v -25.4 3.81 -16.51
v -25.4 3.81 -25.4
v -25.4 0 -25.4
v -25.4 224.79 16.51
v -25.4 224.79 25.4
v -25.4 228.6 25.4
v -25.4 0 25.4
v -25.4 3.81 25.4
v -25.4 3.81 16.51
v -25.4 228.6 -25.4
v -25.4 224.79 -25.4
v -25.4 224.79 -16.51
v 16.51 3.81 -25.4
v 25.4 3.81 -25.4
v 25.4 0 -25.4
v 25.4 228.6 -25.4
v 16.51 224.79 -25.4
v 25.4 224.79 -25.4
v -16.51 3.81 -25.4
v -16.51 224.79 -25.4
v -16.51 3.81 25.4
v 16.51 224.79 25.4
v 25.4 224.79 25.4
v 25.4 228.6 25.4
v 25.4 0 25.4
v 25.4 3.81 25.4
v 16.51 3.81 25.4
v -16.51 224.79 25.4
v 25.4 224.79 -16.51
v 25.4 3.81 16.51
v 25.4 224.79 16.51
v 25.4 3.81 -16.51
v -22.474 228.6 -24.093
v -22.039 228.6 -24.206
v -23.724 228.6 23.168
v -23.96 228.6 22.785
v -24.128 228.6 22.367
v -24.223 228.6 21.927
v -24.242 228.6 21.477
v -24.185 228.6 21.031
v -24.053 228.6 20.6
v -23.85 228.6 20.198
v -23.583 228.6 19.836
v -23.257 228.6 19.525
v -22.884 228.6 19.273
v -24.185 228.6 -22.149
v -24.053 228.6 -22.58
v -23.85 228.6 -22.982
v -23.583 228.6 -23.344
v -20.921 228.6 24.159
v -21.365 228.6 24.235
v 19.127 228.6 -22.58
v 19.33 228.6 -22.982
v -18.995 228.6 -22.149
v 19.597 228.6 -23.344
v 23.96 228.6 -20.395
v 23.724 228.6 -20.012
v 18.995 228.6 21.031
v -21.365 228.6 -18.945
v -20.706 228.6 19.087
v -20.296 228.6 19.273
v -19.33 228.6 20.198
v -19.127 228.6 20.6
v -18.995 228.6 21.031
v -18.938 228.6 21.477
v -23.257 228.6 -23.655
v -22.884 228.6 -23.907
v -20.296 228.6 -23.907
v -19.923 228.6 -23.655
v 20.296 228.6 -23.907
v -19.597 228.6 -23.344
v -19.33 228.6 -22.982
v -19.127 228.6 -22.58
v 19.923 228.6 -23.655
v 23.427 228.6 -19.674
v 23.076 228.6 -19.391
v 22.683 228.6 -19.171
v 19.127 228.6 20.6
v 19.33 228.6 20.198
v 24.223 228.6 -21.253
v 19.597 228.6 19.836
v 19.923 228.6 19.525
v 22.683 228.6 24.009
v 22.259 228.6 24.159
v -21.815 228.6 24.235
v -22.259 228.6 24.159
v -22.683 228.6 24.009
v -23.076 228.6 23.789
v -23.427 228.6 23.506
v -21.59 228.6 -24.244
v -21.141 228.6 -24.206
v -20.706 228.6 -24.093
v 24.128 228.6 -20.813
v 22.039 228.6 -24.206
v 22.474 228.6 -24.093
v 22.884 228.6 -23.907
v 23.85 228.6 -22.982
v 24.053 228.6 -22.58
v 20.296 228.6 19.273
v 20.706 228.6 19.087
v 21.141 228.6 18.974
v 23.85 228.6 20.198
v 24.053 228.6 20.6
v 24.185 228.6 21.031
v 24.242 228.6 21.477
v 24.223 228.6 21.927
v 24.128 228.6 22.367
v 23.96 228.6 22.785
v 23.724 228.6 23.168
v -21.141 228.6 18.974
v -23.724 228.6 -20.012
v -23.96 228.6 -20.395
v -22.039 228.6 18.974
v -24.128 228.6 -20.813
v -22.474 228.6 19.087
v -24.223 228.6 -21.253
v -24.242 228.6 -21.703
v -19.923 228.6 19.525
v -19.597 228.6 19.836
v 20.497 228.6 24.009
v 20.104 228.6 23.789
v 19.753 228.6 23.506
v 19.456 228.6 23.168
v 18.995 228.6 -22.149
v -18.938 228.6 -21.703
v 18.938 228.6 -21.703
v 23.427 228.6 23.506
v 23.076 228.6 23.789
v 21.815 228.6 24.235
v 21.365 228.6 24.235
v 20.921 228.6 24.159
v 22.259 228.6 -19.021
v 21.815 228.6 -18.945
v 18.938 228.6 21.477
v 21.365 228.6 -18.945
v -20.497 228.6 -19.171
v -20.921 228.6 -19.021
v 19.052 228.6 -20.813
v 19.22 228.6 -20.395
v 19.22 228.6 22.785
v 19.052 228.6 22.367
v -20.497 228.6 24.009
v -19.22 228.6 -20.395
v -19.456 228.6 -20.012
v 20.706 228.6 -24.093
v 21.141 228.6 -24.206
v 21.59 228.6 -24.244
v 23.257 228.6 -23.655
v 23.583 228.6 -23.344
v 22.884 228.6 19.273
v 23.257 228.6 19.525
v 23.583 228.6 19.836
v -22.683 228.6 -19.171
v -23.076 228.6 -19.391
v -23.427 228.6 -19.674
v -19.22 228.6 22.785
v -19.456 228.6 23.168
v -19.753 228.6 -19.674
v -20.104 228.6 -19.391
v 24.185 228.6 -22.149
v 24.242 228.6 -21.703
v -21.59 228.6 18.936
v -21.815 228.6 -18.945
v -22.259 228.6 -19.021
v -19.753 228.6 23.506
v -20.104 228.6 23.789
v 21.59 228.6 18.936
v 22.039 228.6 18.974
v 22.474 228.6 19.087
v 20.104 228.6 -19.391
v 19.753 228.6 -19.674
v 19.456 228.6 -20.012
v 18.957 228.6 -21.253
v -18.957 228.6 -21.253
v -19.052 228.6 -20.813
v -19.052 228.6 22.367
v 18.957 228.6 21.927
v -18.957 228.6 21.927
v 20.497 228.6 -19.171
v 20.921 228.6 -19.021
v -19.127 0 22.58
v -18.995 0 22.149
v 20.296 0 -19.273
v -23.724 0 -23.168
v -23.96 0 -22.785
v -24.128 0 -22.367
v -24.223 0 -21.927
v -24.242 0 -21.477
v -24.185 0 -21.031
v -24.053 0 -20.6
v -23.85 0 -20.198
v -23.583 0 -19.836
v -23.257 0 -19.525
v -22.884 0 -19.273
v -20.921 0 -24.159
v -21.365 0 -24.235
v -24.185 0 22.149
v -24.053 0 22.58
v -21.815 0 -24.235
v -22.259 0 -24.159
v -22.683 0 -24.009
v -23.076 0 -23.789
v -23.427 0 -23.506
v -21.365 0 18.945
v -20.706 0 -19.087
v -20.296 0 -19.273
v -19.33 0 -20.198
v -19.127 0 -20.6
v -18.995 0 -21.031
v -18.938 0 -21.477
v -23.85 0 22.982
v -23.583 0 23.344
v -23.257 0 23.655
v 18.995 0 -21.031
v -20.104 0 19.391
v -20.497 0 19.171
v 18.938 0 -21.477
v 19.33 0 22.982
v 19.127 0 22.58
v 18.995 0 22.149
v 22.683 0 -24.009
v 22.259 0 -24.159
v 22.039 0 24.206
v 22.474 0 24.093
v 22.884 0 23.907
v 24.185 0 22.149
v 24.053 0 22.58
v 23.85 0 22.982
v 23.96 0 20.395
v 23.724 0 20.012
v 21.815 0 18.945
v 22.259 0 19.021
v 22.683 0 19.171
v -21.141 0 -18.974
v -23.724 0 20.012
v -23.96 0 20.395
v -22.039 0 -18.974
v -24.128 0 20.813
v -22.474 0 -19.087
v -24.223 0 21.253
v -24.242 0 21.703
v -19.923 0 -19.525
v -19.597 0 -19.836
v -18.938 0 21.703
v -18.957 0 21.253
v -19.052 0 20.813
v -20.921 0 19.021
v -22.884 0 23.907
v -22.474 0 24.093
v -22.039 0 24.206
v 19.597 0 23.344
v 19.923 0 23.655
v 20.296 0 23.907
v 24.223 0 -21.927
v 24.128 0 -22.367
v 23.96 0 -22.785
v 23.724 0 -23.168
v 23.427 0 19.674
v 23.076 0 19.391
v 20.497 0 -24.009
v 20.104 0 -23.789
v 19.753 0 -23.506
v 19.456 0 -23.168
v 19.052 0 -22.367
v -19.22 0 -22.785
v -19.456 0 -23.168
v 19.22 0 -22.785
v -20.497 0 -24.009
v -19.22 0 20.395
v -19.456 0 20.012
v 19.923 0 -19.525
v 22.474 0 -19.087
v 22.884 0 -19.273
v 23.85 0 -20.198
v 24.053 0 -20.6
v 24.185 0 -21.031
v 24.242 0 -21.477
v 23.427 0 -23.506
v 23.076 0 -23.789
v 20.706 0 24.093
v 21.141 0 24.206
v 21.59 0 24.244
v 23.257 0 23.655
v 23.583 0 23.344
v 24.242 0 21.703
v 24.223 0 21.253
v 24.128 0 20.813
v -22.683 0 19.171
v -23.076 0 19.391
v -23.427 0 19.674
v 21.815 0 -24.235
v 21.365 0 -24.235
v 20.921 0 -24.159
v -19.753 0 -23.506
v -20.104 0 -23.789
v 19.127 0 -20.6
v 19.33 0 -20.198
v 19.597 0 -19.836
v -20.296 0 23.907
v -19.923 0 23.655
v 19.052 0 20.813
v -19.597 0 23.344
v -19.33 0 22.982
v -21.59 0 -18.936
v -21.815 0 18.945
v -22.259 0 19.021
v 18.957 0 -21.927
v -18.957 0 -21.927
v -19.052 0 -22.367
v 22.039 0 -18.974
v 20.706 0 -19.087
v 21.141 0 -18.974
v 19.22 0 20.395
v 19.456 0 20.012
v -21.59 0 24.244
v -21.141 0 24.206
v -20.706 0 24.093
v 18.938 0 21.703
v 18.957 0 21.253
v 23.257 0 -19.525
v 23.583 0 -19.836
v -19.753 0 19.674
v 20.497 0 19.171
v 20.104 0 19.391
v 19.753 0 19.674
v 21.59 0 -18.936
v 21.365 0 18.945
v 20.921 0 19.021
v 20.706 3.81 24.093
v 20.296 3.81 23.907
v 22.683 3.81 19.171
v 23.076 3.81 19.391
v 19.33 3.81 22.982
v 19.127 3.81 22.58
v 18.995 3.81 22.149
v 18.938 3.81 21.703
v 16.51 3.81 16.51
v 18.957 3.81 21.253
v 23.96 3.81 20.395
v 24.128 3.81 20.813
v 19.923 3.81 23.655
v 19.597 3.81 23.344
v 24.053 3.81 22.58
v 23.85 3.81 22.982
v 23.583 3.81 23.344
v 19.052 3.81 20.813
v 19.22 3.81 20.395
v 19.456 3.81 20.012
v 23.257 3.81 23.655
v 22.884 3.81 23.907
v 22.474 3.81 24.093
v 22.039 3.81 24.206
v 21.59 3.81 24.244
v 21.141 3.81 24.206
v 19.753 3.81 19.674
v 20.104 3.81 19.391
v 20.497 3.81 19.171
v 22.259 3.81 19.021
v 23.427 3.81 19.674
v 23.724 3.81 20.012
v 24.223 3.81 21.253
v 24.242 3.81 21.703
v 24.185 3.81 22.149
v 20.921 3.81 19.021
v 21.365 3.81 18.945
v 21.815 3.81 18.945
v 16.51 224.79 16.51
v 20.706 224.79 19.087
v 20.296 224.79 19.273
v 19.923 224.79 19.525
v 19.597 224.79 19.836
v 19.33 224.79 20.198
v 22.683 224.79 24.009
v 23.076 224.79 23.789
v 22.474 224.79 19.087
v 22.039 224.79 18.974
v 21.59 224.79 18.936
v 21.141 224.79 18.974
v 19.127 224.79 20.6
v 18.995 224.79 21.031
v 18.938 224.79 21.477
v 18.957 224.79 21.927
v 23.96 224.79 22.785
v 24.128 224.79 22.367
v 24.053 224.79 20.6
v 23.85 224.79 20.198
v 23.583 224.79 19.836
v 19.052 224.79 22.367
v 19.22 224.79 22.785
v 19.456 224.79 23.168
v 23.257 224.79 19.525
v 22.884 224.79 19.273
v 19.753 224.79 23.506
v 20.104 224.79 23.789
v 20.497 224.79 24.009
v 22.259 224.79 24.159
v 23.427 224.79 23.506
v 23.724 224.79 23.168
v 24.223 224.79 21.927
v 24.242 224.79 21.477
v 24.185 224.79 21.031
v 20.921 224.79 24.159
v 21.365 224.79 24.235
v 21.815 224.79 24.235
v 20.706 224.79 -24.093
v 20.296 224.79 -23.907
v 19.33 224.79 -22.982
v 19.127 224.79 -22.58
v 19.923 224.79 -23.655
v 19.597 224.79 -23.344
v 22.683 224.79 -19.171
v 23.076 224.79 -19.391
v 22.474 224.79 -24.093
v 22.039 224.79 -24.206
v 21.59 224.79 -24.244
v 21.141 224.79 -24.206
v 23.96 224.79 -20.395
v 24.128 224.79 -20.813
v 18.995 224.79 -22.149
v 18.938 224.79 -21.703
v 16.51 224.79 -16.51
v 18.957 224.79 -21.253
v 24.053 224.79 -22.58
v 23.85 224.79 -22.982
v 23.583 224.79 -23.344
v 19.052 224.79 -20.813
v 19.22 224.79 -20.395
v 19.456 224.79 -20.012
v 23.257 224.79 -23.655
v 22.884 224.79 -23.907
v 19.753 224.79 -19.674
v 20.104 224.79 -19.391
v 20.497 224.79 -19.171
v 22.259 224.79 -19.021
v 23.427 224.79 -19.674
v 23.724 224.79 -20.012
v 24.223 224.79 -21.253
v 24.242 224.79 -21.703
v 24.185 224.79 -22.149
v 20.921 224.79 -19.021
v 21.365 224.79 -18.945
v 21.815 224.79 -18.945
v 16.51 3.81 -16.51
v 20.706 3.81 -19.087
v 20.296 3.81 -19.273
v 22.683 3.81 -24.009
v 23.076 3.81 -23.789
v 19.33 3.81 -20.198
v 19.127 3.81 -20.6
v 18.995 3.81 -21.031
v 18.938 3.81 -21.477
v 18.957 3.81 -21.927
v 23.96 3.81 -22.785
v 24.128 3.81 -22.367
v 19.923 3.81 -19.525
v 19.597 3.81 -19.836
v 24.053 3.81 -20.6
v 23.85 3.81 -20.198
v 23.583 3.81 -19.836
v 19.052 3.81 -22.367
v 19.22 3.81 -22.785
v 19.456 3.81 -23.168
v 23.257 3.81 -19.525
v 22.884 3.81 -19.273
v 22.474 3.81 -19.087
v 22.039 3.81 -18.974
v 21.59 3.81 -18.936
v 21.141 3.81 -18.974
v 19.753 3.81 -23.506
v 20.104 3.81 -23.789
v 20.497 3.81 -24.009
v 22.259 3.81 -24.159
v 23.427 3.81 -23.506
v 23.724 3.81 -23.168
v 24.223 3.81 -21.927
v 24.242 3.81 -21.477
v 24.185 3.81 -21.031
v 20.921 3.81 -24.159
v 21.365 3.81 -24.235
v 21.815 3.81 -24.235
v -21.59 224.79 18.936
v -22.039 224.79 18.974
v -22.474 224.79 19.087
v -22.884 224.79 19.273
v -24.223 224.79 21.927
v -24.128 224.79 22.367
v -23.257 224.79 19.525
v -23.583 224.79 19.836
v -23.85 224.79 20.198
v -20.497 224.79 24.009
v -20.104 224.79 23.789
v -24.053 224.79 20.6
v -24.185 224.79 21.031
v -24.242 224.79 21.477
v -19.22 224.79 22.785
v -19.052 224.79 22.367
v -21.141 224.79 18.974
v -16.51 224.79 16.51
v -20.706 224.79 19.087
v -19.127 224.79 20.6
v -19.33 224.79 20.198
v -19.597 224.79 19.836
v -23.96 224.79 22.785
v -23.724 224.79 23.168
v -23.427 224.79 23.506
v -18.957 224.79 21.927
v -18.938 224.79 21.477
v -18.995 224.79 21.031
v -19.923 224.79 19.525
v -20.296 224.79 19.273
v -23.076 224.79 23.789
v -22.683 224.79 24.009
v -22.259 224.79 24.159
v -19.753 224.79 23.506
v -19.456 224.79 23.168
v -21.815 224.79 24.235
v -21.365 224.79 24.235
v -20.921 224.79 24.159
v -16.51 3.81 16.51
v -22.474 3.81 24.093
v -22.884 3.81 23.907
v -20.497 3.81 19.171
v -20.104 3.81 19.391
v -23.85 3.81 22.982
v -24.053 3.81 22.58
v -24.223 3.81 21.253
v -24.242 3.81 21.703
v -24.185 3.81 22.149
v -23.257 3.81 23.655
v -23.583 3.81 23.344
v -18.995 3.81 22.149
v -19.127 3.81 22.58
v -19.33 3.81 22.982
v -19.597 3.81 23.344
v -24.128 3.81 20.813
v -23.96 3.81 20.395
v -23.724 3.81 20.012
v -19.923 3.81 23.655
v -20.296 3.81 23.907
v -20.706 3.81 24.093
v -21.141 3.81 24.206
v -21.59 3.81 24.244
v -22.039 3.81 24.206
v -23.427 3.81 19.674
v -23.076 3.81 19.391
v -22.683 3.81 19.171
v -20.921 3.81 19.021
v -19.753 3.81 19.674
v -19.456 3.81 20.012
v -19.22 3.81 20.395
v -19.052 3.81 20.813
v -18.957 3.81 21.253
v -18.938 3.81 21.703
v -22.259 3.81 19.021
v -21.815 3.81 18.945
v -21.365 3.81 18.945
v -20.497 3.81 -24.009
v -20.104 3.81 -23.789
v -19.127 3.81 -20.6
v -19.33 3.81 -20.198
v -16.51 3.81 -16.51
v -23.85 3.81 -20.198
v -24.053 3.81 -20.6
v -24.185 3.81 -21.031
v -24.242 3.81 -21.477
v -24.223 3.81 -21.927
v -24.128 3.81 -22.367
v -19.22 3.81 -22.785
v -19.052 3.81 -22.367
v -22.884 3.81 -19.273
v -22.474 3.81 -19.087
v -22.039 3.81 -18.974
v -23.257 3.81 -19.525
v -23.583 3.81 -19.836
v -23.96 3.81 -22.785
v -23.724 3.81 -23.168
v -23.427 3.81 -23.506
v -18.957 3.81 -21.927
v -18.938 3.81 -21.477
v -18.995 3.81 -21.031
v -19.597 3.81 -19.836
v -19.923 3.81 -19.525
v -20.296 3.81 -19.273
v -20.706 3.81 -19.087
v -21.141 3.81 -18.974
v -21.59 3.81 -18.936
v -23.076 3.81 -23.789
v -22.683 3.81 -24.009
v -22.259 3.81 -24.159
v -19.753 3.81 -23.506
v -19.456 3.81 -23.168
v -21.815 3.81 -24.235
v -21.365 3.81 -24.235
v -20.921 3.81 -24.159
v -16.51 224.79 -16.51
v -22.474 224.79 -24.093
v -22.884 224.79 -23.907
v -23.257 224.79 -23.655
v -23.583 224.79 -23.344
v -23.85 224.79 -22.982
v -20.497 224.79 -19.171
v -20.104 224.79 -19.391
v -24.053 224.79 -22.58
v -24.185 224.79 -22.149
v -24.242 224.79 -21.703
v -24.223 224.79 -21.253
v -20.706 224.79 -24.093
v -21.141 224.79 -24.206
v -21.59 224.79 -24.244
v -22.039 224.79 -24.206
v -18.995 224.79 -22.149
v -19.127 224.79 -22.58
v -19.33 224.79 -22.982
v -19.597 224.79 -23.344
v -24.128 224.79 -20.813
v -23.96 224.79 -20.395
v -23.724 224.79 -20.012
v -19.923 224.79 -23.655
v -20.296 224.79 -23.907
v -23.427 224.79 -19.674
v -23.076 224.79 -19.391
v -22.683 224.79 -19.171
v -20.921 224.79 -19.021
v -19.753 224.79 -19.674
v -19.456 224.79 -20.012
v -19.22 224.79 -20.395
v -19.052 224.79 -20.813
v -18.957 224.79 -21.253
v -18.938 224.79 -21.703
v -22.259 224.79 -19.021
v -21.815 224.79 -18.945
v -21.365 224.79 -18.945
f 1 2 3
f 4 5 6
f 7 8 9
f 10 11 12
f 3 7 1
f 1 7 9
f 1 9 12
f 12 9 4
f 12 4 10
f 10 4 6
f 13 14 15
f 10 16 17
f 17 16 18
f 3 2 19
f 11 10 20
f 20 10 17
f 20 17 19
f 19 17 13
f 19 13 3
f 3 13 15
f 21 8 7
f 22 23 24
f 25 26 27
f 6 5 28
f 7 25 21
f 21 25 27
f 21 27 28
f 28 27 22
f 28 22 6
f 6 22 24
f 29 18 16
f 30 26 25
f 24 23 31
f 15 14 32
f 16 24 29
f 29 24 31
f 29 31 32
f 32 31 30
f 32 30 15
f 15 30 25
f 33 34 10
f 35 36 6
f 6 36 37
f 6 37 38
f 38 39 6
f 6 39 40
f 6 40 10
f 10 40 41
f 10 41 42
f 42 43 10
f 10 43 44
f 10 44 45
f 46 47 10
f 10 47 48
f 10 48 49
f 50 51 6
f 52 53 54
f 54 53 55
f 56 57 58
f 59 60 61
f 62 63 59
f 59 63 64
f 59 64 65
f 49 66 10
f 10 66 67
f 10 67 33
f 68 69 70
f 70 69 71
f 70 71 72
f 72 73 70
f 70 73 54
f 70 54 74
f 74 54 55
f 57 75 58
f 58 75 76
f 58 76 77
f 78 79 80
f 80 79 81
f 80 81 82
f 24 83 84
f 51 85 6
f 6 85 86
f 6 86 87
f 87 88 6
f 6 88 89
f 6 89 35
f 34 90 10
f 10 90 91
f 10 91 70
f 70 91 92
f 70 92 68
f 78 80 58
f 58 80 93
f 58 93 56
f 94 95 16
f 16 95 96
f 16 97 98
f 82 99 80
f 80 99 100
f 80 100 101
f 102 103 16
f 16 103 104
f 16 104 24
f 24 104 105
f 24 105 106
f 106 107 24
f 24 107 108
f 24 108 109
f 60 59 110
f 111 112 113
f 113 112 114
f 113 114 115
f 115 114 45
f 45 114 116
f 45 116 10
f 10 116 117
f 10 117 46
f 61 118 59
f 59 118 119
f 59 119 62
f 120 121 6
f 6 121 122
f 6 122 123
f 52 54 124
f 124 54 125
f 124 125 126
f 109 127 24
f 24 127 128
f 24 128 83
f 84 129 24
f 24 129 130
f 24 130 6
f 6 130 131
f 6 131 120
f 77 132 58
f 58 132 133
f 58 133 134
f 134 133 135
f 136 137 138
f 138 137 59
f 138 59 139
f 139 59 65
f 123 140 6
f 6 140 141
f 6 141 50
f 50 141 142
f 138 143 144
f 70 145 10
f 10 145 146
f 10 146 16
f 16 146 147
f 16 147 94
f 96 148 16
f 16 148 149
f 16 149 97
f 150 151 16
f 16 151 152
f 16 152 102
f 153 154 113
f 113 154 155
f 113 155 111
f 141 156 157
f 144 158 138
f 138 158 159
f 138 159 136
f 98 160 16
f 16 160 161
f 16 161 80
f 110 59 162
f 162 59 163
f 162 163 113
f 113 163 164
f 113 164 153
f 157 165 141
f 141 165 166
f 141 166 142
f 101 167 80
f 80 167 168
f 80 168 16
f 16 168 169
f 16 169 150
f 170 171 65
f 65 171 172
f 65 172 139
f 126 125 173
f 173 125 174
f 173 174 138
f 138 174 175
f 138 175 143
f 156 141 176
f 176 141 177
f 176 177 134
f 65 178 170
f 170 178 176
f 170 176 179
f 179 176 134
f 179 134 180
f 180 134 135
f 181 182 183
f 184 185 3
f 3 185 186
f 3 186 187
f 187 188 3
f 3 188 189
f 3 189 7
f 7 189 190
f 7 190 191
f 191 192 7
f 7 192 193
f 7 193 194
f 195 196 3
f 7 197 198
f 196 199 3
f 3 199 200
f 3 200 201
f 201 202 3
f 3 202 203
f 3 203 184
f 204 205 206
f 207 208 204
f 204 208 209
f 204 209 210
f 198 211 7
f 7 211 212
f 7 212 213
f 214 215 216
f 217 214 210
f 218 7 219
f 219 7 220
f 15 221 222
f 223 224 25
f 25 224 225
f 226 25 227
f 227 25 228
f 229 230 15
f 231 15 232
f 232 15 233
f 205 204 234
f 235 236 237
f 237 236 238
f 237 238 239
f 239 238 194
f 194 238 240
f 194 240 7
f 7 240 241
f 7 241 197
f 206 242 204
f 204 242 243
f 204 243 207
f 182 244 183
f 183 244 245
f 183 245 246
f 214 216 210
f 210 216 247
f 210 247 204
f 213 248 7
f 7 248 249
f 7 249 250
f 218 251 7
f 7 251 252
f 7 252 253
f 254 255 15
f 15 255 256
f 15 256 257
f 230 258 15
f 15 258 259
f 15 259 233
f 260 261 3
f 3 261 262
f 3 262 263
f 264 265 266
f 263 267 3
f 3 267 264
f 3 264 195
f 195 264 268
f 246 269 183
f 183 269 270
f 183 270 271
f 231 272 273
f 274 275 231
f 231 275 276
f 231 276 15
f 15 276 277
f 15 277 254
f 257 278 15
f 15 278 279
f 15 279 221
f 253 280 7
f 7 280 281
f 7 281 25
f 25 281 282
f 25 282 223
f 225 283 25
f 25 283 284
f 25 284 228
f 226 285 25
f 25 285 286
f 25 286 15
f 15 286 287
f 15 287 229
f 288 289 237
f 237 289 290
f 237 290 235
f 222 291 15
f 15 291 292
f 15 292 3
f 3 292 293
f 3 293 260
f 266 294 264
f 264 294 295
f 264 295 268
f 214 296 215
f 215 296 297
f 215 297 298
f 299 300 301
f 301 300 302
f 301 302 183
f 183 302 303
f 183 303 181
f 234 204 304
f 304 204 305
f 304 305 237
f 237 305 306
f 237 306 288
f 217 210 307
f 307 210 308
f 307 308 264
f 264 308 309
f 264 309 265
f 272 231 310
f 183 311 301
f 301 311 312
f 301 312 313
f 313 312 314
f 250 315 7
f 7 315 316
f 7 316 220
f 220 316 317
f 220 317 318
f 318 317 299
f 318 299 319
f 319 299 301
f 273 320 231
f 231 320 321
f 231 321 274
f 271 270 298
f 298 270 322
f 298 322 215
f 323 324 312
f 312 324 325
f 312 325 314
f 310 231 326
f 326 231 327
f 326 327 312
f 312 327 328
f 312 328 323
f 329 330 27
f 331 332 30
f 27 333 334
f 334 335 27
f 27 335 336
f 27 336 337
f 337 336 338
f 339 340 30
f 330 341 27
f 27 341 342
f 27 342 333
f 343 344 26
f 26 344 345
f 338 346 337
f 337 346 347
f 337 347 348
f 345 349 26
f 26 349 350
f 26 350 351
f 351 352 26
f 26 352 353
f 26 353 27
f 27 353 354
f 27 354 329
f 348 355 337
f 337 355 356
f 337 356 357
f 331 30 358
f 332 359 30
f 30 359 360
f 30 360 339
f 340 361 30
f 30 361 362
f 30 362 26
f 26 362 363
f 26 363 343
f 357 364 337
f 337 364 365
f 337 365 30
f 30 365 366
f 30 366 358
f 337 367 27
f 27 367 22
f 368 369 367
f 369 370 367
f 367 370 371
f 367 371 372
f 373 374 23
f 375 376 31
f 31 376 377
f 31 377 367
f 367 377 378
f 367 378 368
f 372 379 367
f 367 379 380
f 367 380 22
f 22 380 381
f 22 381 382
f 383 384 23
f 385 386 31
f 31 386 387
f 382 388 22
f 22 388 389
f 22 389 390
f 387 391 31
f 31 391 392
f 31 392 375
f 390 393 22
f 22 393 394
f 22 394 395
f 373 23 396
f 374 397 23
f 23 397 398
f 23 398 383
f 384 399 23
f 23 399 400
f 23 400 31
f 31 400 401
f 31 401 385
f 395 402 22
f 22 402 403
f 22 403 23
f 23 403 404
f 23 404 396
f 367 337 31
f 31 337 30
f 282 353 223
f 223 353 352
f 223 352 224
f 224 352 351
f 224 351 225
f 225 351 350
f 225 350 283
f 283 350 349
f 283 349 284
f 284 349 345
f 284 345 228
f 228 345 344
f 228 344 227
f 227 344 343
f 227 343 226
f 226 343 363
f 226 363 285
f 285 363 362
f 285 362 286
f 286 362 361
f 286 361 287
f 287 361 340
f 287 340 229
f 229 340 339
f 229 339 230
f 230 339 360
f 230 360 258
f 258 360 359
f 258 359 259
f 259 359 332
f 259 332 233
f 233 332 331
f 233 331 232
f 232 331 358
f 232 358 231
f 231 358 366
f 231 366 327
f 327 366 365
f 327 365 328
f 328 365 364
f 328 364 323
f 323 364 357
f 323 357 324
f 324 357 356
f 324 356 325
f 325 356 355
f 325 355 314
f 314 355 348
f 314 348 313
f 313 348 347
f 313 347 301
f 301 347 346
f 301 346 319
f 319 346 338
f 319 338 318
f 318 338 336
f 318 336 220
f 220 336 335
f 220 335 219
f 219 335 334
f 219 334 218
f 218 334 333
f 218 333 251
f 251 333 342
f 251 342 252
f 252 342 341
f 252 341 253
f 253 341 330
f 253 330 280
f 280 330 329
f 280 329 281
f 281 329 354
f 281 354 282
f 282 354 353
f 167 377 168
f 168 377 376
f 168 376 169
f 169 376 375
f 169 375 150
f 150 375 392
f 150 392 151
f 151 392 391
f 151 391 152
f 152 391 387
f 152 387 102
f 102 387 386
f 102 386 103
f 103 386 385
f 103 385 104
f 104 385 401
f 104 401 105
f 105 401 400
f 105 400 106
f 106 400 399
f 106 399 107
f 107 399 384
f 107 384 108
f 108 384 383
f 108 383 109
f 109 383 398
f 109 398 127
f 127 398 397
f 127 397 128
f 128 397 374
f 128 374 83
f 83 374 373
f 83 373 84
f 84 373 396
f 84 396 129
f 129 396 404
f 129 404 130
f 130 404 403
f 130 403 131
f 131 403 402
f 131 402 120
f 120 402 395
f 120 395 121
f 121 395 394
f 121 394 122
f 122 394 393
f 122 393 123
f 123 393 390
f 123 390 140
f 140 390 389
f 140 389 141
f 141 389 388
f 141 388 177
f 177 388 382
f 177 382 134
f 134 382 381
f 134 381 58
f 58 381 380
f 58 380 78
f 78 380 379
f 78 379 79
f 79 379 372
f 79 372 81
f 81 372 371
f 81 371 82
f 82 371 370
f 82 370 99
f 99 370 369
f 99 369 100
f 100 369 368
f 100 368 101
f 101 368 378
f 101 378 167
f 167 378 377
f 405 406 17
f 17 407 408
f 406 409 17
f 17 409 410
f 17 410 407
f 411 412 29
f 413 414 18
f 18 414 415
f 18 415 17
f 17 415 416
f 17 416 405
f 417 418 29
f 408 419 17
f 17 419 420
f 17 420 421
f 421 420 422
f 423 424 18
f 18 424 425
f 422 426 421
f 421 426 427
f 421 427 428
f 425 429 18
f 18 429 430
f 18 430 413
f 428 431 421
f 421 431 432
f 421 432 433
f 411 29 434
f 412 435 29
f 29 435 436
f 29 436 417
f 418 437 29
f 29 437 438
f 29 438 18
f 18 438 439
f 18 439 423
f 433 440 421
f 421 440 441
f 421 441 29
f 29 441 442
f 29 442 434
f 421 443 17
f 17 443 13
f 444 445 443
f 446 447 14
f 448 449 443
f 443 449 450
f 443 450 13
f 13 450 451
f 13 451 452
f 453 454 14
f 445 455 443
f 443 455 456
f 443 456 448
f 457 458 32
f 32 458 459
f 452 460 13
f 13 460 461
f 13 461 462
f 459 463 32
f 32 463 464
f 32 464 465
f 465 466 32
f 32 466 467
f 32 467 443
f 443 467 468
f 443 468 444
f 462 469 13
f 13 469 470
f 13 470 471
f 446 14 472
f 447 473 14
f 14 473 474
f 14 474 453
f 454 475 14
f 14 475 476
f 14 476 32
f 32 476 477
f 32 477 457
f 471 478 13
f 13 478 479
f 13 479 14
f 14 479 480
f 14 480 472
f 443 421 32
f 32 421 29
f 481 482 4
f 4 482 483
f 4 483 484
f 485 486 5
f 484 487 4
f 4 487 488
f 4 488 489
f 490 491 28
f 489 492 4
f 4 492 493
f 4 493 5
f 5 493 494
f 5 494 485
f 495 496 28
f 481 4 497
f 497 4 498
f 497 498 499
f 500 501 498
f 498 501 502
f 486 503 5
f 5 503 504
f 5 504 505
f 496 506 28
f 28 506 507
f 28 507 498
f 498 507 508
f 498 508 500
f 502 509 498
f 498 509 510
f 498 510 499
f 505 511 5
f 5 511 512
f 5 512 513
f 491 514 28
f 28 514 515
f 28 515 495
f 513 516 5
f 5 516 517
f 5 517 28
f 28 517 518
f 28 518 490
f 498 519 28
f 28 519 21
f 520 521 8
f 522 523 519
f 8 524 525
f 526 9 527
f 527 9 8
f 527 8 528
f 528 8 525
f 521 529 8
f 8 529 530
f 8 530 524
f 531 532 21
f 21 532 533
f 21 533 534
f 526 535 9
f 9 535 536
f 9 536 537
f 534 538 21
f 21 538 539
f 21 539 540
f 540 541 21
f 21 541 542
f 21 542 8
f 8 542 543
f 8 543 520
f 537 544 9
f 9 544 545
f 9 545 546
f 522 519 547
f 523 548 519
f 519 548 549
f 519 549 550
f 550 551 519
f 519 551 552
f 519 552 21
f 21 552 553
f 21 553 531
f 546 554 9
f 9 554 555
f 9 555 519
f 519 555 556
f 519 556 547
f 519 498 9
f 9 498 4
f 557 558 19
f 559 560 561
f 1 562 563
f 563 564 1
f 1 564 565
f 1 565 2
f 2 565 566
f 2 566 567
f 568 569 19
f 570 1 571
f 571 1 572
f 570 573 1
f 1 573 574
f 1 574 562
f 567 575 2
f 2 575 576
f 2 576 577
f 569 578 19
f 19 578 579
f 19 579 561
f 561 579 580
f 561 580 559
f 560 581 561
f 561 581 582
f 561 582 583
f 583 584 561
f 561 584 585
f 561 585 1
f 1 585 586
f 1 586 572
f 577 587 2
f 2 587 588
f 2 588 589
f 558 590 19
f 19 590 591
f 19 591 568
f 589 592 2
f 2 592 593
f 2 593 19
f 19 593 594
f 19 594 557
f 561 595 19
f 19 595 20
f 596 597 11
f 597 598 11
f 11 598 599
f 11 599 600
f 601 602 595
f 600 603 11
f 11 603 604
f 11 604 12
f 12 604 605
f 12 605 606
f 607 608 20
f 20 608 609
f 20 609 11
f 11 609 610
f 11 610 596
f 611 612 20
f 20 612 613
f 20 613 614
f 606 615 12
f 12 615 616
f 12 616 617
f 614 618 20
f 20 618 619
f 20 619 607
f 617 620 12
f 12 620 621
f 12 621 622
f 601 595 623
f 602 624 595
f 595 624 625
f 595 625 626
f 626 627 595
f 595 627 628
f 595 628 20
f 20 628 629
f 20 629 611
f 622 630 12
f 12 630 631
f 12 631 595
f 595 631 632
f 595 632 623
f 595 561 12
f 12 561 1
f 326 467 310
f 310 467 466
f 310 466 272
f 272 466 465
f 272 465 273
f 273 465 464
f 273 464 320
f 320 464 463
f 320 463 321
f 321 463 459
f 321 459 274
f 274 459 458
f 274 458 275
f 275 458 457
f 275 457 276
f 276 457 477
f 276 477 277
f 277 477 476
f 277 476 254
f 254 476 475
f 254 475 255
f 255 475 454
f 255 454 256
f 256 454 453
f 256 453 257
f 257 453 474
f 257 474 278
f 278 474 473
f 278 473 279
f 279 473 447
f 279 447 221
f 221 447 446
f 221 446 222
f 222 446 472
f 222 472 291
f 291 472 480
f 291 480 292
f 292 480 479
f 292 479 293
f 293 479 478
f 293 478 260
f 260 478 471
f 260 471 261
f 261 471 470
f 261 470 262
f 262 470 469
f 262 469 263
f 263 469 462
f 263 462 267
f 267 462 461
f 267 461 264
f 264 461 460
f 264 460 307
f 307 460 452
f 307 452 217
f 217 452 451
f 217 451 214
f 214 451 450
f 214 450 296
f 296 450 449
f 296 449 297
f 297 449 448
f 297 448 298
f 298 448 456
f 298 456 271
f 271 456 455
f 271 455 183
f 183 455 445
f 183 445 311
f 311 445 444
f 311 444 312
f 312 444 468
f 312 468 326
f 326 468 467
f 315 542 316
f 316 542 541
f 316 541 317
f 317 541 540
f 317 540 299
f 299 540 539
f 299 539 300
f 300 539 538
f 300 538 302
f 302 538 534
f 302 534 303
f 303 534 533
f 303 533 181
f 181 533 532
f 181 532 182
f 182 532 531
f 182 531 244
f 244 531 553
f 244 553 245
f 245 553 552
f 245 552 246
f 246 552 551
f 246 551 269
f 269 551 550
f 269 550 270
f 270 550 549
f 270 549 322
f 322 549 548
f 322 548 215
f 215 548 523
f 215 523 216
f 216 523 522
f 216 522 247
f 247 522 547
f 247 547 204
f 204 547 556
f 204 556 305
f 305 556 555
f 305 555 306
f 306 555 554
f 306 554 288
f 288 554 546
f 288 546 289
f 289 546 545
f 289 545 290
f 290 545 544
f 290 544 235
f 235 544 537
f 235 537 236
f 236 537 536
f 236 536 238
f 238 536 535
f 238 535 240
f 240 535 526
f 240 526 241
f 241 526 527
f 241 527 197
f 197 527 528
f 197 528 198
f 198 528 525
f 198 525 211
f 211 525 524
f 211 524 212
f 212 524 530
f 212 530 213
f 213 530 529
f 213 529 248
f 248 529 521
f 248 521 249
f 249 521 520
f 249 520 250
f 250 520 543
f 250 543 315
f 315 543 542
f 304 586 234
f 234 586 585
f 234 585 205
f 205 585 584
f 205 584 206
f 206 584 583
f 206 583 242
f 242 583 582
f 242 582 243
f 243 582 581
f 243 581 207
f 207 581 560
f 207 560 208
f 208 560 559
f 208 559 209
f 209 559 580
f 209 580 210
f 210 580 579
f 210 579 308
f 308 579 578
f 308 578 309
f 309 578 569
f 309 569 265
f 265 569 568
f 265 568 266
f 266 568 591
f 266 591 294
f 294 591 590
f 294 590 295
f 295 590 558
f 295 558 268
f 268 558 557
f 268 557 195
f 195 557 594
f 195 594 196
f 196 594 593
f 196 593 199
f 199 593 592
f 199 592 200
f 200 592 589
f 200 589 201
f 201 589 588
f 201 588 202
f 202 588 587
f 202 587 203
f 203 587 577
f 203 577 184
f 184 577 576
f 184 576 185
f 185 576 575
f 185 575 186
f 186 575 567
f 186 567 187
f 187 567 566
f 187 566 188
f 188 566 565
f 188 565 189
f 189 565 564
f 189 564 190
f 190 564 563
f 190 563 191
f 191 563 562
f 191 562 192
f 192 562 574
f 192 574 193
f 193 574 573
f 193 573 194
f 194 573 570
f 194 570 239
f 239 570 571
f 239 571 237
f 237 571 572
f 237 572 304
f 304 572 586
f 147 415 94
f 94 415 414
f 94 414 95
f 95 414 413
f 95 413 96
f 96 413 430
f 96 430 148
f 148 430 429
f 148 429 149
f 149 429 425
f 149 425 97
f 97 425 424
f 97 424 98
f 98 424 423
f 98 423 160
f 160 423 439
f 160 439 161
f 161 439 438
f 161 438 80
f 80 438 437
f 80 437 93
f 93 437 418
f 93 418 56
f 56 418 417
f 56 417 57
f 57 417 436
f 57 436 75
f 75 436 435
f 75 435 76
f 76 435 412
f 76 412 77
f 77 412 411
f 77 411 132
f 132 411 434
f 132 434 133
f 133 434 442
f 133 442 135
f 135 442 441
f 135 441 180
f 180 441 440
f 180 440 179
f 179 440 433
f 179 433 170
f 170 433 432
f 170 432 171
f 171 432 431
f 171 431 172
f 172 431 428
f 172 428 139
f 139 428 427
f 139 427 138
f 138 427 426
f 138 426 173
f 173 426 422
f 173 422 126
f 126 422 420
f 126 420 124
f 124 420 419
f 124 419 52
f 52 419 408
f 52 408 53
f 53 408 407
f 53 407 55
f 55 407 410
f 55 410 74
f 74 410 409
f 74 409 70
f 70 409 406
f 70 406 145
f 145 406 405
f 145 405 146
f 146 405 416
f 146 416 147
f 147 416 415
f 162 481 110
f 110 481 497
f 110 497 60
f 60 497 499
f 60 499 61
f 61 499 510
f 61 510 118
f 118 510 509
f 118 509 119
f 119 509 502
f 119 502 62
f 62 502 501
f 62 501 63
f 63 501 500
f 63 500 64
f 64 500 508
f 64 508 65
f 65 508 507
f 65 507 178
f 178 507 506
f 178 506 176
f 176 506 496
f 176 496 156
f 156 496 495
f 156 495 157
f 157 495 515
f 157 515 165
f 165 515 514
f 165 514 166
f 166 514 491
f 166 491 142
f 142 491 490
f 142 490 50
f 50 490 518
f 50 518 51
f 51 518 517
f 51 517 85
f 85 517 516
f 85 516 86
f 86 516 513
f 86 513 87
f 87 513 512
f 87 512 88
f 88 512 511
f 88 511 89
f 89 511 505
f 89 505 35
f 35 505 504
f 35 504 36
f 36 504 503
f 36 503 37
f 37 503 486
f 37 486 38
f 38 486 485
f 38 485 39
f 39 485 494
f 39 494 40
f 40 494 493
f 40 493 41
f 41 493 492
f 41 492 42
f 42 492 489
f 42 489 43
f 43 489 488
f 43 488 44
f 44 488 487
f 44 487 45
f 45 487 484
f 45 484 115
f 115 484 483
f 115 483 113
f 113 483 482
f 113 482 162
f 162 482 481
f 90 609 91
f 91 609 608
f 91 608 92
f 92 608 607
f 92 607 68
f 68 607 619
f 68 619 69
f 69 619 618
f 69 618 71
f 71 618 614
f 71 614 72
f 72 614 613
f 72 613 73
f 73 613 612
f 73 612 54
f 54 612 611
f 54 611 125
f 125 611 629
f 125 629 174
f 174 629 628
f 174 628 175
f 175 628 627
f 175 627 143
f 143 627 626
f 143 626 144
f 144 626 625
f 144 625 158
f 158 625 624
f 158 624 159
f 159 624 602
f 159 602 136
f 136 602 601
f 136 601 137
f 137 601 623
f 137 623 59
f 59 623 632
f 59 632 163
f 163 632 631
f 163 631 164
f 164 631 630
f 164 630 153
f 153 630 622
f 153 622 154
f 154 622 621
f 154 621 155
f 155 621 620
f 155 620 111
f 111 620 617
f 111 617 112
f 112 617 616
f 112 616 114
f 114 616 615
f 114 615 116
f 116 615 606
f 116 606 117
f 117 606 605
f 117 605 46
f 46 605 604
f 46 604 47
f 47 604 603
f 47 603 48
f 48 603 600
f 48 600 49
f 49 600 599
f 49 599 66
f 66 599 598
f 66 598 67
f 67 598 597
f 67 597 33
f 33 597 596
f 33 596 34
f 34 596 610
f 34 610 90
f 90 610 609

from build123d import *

# Parameters (mm, degrees)
SKETCH1_W                                  = 50.8
SKETCH1_H                                  = 50.8
BOSS_EXTRUDE1_DEPTH                        = 228.6
SKETCH2_W                                  = 8.89
SKETCH2_H                                  = 220.98
CUT_EXTRUDE1_DEPTH                         = 8.89
F_4_0_209_DIAMETER_HOLE1_D                 = 5.3086
F_4_0_209_DIAMETER_HOLE1_DEPTH             = 3.81
F_4_0_209_DIAMETER_HOLE2_D                 = 5.3086
MIRROR1_AT_THE_SECOND_PLANE_COPY_1_SKETC_W = 8.89
MIRROR1_AT_THE_SECOND_PLANE_COPY_1_SKETC_H = 220.98
MIRROR1_AT_THE_SECOND_PLANE_COPY_1_DEPTH   = 8.89
MIRROR1_AT_THE_SECOND_PLANE_COPY_2_D       = 5.3086
MIRROR1_AT_THE_SECOND_PLANE_COPY_2_DEPTH   = 3.81
MIRROR1_AT_THE_SECOND_PLANE_COPY_3_D       = 5.3086


with BuildPart() as part:
    # Sketch1 → Boss-Extrude1 (new body)
    with BuildSketch(Plane(origin=(0, 0, 0), x_dir=(1, 0, 0), z_dir=(0, 1, 0))):
        Rectangle(SKETCH1_W, SKETCH1_H)
    extrude(amount=BOSS_EXTRUDE1_DEPTH)

    # Sketch2 → Cut-Extrude1 (cut)
    with BuildSketch(Plane.XY.offset(25.4)):
        with Locations((20.955, 114.3)):
            Rectangle(SKETCH2_W, SKETCH2_H)
    cut_extrude1 = extrude(amount=-CUT_EXTRUDE1_DEPTH, mode=Mode.SUBTRACT)

    # #4 (0.209) Diameter Hole1
    with Locations(Plane(origin=(0, 3.81, 0), x_dir=(1, 0, 0), z_dir=(0, 1, 0))):
        with Locations((21.59, -21.59)):
            f_4_0_209_diameter_hole1 = Hole(F_4_0_209_DIAMETER_HOLE1_D / 2, depth=F_4_0_209_DIAMETER_HOLE1_DEPTH)

    # #4 (0.209) Diameter Hole2 (through all)
    with Locations(Plane(origin=(0, 224.79, 0), x_dir=(-1, 0, 0), z_dir=(0, -1, 0))):
        with Locations((-21.59, -21.59)):
            f_4_0_209_diameter_hole2 = Hole(F_4_0_209_DIAMETER_HOLE2_D / 2)

    # Mirror1: Cut-Extrude1, #4 (0.209) Diameter Hole1, #4 (0.209) Diameter Hole2 across plane
    add(cut_extrude1.mirror(Plane(origin=(0, 0, 0), x_dir=(0, 0, 1), z_dir=(1, 0, 0))), mode=Mode.SUBTRACT)
    add(f_4_0_209_diameter_hole1.mirror(Plane(origin=(0, 0, 0), x_dir=(0, 0, 1), z_dir=(1, 0, 0))), mode=Mode.SUBTRACT)
    add(f_4_0_209_diameter_hole2.mirror(Plane(origin=(0, 0, 0), x_dir=(0, 0, 1), z_dir=(1, 0, 0))), mode=Mode.SUBTRACT)

    # Mirror1 at the second plane: Cut-Extrude1, #4 (0.209) Diameter Hole1, #4 (0.209) Diameter Hole2 across plane
    add(cut_extrude1.mirror(Plane.XY), mode=Mode.SUBTRACT)
    add(f_4_0_209_diameter_hole1.mirror(Plane.XY), mode=Mode.SUBTRACT)
    add(f_4_0_209_diameter_hole2.mirror(Plane.XY), mode=Mode.SUBTRACT)

    # Mirror1 at the second plane copy 1 sketc → Mirror1 at the second plane copy 1 (cut)
    with BuildSketch(Plane(origin=(0, 0, -25.4), x_dir=(-1, 0, 0), z_dir=(0, 0, -1))):
        with Locations((20.955, 114.3)):
            Rectangle(MIRROR1_AT_THE_SECOND_PLANE_COPY_1_SKETC_W, MIRROR1_AT_THE_SECOND_PLANE_COPY_1_SKETC_H)
    extrude(amount=-MIRROR1_AT_THE_SECOND_PLANE_COPY_1_DEPTH, mode=Mode.SUBTRACT)

    # Mirror1 at the second plane copy 2
    with Locations(Plane(origin=(0, 3.81, 0), x_dir=(-1, 0, 0), z_dir=(0, 1, 0))):
        with Locations((21.59, -21.59)):
            Hole(MIRROR1_AT_THE_SECOND_PLANE_COPY_2_D / 2, depth=MIRROR1_AT_THE_SECOND_PLANE_COPY_2_DEPTH)

    # Mirror1 at the second plane copy 3 (through all)
    with Locations(Plane.XZ.offset(-224.79)):
        with Locations((-21.59, -21.59)):
            Hole(MIRROR1_AT_THE_SECOND_PLANE_COPY_3_D / 2)


solid = part.part
